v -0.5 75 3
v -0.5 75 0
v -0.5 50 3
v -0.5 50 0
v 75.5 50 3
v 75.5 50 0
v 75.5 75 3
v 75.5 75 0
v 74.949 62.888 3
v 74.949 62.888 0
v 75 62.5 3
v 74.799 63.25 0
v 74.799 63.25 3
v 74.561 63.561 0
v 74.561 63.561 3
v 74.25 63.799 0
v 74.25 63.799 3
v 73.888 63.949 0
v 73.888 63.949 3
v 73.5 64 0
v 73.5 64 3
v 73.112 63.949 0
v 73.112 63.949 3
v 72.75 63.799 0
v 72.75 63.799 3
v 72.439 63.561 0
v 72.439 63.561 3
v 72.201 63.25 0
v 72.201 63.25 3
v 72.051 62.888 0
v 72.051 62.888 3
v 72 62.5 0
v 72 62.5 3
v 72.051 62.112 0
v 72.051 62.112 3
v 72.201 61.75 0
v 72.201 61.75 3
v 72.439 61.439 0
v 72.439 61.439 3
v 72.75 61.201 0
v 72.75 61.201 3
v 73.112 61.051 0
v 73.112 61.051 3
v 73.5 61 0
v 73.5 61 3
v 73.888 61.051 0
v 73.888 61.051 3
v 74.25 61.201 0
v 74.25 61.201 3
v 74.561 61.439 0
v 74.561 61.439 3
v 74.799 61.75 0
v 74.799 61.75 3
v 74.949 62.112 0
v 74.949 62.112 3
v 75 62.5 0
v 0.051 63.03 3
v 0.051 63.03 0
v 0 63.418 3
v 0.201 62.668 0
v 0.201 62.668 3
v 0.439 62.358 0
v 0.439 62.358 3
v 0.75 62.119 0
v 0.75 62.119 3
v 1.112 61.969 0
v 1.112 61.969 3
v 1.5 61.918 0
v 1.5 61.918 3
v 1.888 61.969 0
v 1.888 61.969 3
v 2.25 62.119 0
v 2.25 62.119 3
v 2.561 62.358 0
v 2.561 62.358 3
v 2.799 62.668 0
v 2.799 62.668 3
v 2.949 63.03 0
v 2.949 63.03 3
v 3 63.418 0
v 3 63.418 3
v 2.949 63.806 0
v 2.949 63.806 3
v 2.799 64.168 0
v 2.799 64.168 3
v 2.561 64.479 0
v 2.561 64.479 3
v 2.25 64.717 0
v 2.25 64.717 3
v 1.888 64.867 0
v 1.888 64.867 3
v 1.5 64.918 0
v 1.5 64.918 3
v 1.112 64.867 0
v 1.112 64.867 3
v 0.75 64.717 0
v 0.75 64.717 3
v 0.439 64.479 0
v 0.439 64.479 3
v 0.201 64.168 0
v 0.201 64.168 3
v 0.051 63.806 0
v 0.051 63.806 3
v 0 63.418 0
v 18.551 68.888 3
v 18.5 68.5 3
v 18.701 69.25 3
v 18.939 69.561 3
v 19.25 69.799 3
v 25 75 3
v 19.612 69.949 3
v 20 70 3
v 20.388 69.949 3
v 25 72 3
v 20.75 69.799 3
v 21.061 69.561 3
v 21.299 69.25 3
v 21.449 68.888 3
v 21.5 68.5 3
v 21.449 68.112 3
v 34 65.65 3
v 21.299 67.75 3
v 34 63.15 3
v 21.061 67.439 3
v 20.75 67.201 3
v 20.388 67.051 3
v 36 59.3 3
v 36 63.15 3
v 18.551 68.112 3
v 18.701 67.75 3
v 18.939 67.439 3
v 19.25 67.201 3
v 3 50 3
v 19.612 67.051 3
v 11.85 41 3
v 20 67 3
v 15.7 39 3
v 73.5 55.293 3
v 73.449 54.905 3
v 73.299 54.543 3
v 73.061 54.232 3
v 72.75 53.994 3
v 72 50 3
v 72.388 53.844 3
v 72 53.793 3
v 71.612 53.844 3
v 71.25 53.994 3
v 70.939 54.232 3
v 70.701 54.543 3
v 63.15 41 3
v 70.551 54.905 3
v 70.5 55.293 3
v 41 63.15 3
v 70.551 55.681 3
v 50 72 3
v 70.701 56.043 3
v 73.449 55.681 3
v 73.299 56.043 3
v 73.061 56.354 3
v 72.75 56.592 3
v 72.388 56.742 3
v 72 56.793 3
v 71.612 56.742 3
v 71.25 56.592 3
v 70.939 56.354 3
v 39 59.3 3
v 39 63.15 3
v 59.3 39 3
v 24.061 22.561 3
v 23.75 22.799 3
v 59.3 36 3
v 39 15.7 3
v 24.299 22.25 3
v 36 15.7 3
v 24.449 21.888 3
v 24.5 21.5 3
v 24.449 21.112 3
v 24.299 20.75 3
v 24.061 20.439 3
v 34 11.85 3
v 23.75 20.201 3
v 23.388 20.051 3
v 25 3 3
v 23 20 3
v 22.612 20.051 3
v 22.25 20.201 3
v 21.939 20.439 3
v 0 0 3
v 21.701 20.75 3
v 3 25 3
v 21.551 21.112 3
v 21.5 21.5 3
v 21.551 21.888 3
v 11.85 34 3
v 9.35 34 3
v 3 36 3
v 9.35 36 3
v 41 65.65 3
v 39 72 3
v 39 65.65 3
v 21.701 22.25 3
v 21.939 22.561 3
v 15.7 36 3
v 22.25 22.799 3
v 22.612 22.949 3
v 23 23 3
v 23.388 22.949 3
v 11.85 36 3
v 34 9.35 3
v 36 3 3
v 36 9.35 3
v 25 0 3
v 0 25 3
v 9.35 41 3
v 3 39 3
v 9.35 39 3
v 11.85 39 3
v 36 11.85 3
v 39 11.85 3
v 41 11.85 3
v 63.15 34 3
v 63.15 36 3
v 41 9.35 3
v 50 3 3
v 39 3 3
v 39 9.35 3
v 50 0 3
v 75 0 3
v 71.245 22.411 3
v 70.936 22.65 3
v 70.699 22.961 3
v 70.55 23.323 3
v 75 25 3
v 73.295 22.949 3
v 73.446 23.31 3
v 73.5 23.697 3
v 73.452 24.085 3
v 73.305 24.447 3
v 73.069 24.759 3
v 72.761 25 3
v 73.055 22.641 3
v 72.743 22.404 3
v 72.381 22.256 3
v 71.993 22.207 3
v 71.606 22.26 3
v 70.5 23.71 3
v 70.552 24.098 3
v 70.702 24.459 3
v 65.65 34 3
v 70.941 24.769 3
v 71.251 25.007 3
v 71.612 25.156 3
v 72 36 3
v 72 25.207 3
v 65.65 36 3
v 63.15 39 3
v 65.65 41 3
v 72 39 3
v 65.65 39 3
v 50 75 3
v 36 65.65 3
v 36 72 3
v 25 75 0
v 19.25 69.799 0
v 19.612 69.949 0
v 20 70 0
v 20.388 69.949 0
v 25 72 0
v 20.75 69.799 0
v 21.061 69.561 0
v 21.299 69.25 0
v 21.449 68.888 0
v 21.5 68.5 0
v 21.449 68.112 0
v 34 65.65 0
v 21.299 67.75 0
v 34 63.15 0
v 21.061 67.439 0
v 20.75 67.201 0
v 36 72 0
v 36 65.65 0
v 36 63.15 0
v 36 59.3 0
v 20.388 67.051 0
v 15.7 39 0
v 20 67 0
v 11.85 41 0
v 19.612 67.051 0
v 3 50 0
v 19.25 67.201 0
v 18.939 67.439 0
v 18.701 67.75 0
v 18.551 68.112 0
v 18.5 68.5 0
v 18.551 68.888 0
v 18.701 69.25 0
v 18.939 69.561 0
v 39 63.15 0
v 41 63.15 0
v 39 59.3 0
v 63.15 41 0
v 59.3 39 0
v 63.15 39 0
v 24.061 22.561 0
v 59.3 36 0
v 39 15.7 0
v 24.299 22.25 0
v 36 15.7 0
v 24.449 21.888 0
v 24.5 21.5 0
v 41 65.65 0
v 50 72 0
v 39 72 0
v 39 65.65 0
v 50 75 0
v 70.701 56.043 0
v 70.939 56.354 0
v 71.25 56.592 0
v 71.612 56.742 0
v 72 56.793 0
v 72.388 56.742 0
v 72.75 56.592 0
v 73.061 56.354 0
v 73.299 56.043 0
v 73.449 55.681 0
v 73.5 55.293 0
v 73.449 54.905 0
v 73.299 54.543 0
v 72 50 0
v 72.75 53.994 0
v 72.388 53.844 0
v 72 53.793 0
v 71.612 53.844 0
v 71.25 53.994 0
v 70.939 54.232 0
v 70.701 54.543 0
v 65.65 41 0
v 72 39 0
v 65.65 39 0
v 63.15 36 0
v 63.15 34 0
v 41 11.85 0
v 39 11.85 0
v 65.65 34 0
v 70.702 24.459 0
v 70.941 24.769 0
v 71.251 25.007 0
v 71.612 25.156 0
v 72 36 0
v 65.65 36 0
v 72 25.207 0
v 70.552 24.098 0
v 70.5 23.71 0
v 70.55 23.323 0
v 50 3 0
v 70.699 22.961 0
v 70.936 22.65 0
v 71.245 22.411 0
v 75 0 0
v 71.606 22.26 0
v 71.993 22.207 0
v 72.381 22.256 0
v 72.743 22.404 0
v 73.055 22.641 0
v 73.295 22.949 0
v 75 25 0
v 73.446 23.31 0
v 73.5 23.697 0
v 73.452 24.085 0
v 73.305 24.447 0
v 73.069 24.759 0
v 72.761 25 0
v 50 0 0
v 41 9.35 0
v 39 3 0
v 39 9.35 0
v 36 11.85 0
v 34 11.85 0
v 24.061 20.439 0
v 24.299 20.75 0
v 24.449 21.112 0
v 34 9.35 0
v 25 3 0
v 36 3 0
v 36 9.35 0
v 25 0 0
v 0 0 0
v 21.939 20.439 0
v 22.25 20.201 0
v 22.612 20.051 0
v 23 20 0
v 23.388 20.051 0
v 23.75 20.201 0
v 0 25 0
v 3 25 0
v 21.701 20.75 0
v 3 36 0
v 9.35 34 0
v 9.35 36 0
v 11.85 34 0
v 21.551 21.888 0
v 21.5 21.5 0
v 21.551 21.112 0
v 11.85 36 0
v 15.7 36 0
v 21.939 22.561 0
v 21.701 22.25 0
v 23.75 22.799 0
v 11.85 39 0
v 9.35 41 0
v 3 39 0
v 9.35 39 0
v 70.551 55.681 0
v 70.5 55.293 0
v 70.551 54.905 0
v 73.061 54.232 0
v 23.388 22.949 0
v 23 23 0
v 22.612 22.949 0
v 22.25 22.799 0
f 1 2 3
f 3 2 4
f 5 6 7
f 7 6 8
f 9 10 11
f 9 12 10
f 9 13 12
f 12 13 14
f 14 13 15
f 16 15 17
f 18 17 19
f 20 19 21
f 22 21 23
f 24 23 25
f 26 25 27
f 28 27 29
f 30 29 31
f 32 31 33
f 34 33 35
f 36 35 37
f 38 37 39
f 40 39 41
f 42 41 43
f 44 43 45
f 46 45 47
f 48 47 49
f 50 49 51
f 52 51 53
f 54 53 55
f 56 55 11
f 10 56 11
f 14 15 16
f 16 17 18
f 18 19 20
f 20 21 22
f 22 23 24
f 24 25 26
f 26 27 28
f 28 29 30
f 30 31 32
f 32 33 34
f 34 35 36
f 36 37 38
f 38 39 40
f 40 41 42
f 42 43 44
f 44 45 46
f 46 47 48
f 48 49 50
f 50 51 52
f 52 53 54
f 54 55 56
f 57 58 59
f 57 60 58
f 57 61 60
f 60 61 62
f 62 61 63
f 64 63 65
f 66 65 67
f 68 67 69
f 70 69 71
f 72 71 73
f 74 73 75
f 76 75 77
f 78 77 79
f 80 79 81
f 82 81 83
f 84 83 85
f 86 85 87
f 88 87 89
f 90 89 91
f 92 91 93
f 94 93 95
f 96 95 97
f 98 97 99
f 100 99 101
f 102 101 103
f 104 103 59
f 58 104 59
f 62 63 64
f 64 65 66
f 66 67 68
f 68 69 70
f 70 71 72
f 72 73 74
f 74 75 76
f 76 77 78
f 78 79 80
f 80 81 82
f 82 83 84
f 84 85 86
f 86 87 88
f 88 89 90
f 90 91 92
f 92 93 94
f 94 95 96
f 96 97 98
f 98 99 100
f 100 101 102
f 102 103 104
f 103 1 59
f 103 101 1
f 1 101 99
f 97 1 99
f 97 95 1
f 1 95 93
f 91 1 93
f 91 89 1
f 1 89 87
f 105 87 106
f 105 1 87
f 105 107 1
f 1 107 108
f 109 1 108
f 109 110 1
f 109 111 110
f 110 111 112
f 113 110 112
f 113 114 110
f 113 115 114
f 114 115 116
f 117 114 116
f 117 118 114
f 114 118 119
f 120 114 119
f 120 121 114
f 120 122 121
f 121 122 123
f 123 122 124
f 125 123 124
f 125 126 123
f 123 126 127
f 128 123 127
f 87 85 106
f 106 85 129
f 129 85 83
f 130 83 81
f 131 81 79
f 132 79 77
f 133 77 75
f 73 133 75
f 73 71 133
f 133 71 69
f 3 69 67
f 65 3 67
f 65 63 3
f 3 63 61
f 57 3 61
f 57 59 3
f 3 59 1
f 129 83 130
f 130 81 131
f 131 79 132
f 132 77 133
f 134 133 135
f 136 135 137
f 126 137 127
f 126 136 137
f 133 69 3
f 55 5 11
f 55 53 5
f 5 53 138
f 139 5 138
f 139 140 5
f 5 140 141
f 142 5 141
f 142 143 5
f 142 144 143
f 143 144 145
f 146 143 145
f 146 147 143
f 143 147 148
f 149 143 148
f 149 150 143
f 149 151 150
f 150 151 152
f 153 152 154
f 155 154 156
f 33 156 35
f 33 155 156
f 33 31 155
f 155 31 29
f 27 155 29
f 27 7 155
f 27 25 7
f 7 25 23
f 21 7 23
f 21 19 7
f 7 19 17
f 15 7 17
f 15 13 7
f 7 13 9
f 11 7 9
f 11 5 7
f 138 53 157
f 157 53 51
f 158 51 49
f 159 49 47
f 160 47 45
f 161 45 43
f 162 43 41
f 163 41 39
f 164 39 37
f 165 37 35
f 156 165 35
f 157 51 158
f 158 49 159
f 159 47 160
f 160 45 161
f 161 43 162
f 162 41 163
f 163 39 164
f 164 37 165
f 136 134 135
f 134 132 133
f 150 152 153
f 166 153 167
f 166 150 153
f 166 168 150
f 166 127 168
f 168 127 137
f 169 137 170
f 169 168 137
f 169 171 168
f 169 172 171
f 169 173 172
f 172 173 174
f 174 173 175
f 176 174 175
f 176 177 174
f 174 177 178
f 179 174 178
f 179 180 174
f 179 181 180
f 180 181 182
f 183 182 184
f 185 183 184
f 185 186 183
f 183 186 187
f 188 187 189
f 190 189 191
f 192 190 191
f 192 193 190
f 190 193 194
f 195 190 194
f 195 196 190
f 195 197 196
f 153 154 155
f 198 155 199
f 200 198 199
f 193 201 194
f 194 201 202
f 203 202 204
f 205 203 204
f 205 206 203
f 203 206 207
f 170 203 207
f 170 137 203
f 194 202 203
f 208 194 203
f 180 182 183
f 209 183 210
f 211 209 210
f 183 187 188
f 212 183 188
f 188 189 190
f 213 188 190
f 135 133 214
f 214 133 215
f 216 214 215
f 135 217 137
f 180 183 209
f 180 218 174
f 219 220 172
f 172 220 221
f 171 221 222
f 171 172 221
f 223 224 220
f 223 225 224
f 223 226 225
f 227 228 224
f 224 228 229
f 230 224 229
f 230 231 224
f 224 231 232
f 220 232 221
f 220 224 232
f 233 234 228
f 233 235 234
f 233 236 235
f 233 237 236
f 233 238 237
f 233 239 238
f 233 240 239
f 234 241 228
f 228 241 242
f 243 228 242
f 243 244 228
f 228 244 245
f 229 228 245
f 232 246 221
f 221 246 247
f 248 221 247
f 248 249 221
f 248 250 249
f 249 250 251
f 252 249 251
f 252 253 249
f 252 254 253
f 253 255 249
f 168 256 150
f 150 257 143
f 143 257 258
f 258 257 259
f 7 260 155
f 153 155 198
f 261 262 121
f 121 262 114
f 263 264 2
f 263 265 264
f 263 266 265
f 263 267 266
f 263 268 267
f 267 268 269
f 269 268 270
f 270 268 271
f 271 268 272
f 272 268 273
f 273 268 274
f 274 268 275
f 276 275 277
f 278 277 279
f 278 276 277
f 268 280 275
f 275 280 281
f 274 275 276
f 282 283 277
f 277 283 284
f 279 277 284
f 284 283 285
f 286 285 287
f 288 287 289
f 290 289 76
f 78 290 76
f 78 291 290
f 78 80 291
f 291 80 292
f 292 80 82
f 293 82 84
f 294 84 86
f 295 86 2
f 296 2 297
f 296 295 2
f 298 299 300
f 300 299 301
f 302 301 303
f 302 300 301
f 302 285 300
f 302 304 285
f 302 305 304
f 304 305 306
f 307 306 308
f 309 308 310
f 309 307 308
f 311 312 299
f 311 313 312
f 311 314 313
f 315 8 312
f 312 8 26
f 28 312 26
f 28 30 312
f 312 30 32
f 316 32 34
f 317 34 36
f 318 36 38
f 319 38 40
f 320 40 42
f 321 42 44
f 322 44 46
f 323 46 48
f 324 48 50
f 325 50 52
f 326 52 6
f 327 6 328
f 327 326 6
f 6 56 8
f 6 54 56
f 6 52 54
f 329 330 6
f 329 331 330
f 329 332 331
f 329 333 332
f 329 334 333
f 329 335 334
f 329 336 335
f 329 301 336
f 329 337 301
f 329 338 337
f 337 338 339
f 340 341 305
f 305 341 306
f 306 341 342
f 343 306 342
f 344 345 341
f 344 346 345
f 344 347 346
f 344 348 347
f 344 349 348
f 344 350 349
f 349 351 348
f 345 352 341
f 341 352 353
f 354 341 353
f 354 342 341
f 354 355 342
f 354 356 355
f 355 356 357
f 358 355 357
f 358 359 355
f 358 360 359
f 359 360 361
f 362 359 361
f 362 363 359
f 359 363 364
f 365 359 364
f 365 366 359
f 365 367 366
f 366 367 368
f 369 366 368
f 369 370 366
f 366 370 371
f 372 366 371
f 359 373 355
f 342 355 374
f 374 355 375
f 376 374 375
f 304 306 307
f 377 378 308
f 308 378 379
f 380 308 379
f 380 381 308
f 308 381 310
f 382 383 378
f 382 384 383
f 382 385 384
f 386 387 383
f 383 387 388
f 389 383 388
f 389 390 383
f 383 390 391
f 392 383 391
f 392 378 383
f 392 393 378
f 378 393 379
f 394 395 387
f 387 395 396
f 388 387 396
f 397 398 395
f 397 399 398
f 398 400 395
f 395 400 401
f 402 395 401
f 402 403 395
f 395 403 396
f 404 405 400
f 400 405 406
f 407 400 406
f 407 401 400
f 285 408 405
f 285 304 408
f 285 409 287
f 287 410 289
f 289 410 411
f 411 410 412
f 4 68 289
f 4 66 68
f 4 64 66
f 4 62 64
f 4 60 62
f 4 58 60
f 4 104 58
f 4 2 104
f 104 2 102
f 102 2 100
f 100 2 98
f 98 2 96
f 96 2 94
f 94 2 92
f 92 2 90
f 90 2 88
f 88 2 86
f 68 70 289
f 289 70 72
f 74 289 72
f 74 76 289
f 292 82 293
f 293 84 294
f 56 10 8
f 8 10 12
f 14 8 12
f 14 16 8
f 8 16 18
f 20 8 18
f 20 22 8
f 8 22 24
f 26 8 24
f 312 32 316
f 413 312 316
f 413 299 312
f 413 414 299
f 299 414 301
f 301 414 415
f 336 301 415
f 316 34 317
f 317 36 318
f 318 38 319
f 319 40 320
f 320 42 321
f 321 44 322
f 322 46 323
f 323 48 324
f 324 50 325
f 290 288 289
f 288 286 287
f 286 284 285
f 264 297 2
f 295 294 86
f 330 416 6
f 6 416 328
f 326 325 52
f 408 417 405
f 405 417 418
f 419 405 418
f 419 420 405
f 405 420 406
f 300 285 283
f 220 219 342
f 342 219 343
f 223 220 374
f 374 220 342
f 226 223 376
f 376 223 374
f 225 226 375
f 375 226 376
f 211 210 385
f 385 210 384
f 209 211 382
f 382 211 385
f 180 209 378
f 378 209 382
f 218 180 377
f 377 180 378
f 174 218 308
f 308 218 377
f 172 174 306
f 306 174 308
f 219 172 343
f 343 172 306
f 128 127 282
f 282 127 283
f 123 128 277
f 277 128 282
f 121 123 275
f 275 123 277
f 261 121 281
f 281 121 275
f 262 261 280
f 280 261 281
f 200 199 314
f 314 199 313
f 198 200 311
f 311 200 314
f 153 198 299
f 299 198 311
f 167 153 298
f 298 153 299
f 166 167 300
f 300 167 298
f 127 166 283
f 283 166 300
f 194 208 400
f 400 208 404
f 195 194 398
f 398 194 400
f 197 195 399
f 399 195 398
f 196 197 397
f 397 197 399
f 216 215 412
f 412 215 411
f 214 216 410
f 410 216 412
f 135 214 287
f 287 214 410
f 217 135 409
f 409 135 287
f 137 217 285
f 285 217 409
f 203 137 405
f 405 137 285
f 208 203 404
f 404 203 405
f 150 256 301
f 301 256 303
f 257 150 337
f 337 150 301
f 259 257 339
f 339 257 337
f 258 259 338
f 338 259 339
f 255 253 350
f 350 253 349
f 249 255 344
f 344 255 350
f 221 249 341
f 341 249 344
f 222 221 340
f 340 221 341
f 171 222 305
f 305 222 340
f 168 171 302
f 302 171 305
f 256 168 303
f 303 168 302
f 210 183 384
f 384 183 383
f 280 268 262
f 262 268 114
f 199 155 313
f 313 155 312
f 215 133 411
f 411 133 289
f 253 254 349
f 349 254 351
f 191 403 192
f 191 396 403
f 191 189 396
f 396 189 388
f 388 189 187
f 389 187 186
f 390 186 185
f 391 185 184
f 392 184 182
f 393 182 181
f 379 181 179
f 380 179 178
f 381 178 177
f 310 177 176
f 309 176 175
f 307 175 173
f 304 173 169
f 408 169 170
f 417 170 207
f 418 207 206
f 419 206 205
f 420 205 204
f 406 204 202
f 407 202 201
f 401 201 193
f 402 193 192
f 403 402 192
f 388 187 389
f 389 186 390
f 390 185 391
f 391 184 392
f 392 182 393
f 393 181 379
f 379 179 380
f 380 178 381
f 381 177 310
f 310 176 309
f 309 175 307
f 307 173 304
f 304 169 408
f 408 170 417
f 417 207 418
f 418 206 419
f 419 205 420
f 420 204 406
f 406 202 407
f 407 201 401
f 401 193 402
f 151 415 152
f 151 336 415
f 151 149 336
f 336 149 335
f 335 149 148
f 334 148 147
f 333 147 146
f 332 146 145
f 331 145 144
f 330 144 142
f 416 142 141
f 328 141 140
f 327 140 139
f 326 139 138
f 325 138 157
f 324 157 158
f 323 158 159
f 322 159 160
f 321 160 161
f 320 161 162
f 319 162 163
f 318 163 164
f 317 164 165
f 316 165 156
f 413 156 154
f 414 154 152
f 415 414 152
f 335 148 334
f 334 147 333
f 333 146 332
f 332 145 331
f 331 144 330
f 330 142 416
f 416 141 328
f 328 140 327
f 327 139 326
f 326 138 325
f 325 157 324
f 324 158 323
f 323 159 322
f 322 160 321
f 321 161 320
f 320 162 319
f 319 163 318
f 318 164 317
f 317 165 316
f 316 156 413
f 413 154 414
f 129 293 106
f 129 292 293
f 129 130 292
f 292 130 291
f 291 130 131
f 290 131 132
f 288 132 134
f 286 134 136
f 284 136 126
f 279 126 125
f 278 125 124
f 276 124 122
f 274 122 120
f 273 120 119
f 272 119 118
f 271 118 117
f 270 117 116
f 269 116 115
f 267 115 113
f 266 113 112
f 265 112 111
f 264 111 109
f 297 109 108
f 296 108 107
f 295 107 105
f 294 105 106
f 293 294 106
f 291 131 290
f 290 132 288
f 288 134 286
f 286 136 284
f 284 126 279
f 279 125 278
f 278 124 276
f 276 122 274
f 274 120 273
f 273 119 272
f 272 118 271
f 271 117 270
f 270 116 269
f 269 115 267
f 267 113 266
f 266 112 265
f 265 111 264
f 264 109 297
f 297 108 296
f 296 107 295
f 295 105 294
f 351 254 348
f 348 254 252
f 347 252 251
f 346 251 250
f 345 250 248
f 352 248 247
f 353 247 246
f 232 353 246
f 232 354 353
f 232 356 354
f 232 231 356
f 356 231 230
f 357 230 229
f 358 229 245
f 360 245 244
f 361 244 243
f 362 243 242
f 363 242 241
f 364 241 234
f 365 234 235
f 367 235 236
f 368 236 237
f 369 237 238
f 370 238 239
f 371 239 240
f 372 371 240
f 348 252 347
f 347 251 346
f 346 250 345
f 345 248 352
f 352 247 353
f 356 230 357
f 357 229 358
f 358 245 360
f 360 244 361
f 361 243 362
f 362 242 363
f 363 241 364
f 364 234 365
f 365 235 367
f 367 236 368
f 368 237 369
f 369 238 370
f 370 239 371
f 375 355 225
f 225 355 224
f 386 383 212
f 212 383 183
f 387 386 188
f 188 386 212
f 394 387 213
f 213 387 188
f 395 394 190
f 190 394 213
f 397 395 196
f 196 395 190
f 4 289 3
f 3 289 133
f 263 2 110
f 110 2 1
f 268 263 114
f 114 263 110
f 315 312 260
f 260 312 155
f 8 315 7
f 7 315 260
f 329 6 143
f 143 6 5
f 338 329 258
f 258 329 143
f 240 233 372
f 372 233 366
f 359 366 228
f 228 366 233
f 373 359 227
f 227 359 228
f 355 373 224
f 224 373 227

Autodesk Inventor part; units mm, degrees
ref_plane "YZ Plane" through (0, 0, 0) normal (1, 0, 0) x (0, 1, 0)
ref_plane "XZ Plane" through (0, 0, 0) normal (0, 1, 0) x (-1, 0, 0)
ref_plane "XY Plane" through (0, 0, 0) normal (0, 0, 1) x (1, 0, 0)
sketch "Sketch1" plane through (0, 0, 0) normal (0, 0, 1) x (1, 0, 0)
  line L0 (0, 0) -> (25, 0) projected
  line L1 (25, 0) -> (25, 3) projected
  line L2 (0, 3) -> (25, 3) projected
  line L3 (0, 0) -> (0, 3) projected
  line L4 (25, 0) -> (50, 0) projected
  line L5 (50, 0) -> (50, 3) projected
  line L6 (25, 3) -> (50, 3) projected
  line L7 (25, 0) -> (25, 3) projected
  line L8 (50, 0) -> (75, 0) projected
  line L9 (75, 0) -> (75, 3) projected
  line L10 (50, 3) -> (75, 3) projected
  line L11 (50, 0) -> (50, 3) projected
  line L12 (0, 0) -> (0, 75)
  line L13 (0, 75) -> (75, 75)
  line L14 (75, 75) -> (75, 0)
  line L15 (75, 0) -> (50, 0)
  line L16 (50, 3) -> (50, 0)
  line L17 (50, 3) -> (25, 3)
  line L18 (25, 3) -> (25, 0)
  line L19 (25, 0) -> (0, 0)
  line L20 (0, 0) -> (0, 25)
  line L21 (0, 25) -> (3, 25)
  line L22 (3, 25) -> (3, 50)
  line L23 (3, 50) -> (0, 50)
  line L24 (25, 75) -> (25, 72)
  line L25 (25, 72) -> (50, 72)
  line L26 (50, 75) -> (50, 72)
  line L27 (75, 50) -> (72, 50)
  line L28 (72, 50) -> (72, 25)
  line L29 (72, 25) -> (75, 25)
  dimension "d0" = 75
  dimension "d1" = 75
  dimension "d2" = 25
  dimension "d3" = 3
  dimension "d4" = 25
  dimension "d5" = 3
  dimension "d6" = 3
extrude "Extrusion1" add sketch "Sketch1" along normal blind 3 contours L3 L2 L1 L0 | L12 L21 L22 L23 L13 L24 L25 L26 L14 L27 L28 L29 L10 L6 L2 | L5 L10 L9 L8
sketch "Sketch2" plane through (0, 0, 0) normal (0, 0, -1) x (-1, 0, 0)
  circle A0 centre (-72, 55.2929) radius 1.5 projected
  circle A1 centre (-20, 68.5) radius 1.5 projected
  circle A2 centre (-23, 21.5) radius 1.5 projected
  circle A3 centre (-72, 23.7071) radius 1.5 projected
  point P0 (0, 0)
extrude "Extrusion2" cut sketch "Sketch2" against normal blind 25.4
sketch "Sketch3" plane through (0, 0, 0) normal (0, 0, -1) x (-1, 0, 0)
  line L0 (-50, 72) -> (-39, 72) projected
  line L1 (-25, 72) -> (-25, 75) projected
  line L2 (-25, 75) -> (0, 75) projected
  line L3 (0, 62.5) -> (0, 50) projected
  line L4 (0, 50) -> (-3, 50) projected
  line L5 (-3, 50) -> (-3, 39) projected
  line L6 (-3, 25) -> (0, 25) projected
  line L7 (0, 25) -> (0, 0) projected
  line L8 (0, 0) -> (-25, 0) projected
  line L9 (-25, 0) -> (-25, 3) projected
  line L10 (-25, 3) -> (-36, 3) projected
  line L11 (-50, 3) -> (-50, 0) projected
  line L12 (-50, 0) -> (-75, 0) projected
  line L13 (-75, 0) -> (-75, 25) projected
  line L14 (-75, 25) -> (-72, 25) projected
  line L15 (-72, 25) -> (-72, 36) projected
  line L16 (-72, 50) -> (-75, 50) projected
  line L17 (-75, 62.5) -> (-75, 75) projected
  line L18 (-75, 75) -> (-50, 75) projected
  line L19 (-50, 75) -> (-50, 72) projected
  circle A0 centre (-19, 19.65) radius 1.5 projected
  circle A1 centre (-19, 56.95) radius 1.5 projected
  circle A2 centre (-56.3, 56.95) radius 1.5 projected
  circle A3 centre (-56.3, 19.65) radius 1.5 projected
  line L20 (-39, 72) -> (-36, 72)
  line L21 (-3, 39) -> (-3, 36)
  line L22 (-3, 50) -> (-3, 25) projected
  line L23 (-39, 3) -> (-36, 3)
  line L24 (-25, 3) -> (-50, 3) projected
  line L25 (-72, 36) -> (-72, 39)
  line L26 (-72, 25.2071) -> (-72, 50) projected
  line L27 (-72, 39) -> (-72, 50) projected
  line L28 (-36, 72) -> (-25, 72) projected
  line L29 (-3, 36) -> (-3, 25) projected
  line L30 (-39, 3) -> (-50, 3) projected
  line L31 (-72, 36) -> (-65.65, 36) projected
  line L32 (-65.65, 36) -> (-65.65, 34) projected
  line L33 (-65.65, 34) -> (-63.15, 34) projected
  line L34 (-63.15, 34) -> (-63.15, 36) projected
  line L35 (-63.15, 36) -> (-59.3, 36) projected
  line L36 (-59.3, 36) -> (-59.3, 39) projected
  line L37 (-59.3, 39) -> (-63.15, 39) projected
  line L38 (-63.15, 39) -> (-63.15, 41) projected
  line L39 (-63.15, 41) -> (-65.65, 41) projected
  line L40 (-65.65, 41) -> (-65.65, 39) projected
  line L41 (-65.65, 39) -> (-72, 39) projected
  line L42 (-39, 72) -> (-39, 65.65) projected
  line L43 (-39, 65.65) -> (-41, 65.65) projected
  line L44 (-41, 65.65) -> (-41, 63.15) projected
  line L45 (-41, 63.15) -> (-39, 63.15) projected
  line L46 (-39, 63.15) -> (-39, 59.3) projected
  line L47 (-39, 59.3) -> (-36, 59.3) projected
  line L48 (-36, 59.3) -> (-36, 63.15) projected
  line L49 (-36, 63.15) -> (-34, 63.15) projected
  line L50 (-34, 63.15) -> (-34, 65.65) projected
  line L51 (-34, 65.65) -> (-36, 65.65) projected
  line L52 (-36, 65.65) -> (-36, 72) projected
  line L53 (-3, 39) -> (-9.35, 39) projected
  line L54 (-9.35, 39) -> (-9.35, 41) projected
  line L55 (-9.35, 41) -> (-11.85, 41) projected
  line L56 (-11.85, 41) -> (-11.85, 39) projected
  line L57 (-11.85, 39) -> (-15.7, 39) projected
  line L58 (-15.7, 39) -> (-15.7, 36) projected
  line L59 (-15.7, 36) -> (-11.85, 36) projected
  line L60 (-11.85, 36) -> (-11.85, 34) projected
  line L61 (-11.85, 34) -> (-9.35, 34) projected
  line L62 (-9.35, 34) -> (-9.35, 36) projected
  line L63 (-9.35, 36) -> (-3, 36) projected
  line L64 (-36, 3) -> (-36, 9.35) projected
  line L65 (-36, 9.35) -> (-34, 9.35) projected
  line L66 (-34, 9.35) -> (-34, 11.85) projected
  line L67 (-34, 11.85) -> (-36, 11.85) projected
  line L68 (-36, 11.85) -> (-36, 15.7) projected
  line L69 (-36, 15.7) -> (-39, 15.7) projected
  line L70 (-39, 15.7) -> (-39, 11.85) projected
  line L71 (-39, 11.85) -> (-41, 11.85) projected
  line L72 (-41, 11.85) -> (-41, 9.35) projected
  line L73 (-41, 9.35) -> (-39, 9.35) projected
  line L74 (-39, 9.35) -> (-39, 3) projected
  line L75 (-75, 50) -> (-75, 62.5) projected
  circle A4 centre (-73.5, 62.5) radius 1.5 projected
  line L76 (0, 75) -> (0, 62.5) projected
  circle A5 centre (-1.5, 62.5) radius 1.5 projected
extrude "Extrusion3" cut sketch "Sketch3" against normal blind 25.4 contours L20 L52 L51 L50 L49 L48 L47 L46 L45 L44 L43 L42 | L41 L40 L39 L38 L37 L36 L35 L34 L33 L32 L31 L25 | L21 L63 L62 L61 L60 L59 L58 L57 L56 L55 L54 L53 | L74 L73 L72 L71 L70 L69 L68 L67 L66 L65 L64 L23
sketch "Sketch4" plane through (0, 0, 0) normal (0, 0, -1) x (-1, 0, 0)
  line L0 (-75, 61) -> (-75, 64) projected
  line L1 (0, 65) -> (0, 61.8364) projected
  line L2 (-75, 62.5) -> (-73.5, 62.5)
  line L3 (0, 63.4182) -> (-1.5, 63.4182)
  circle A0 centre (-73.5, 62.5) radius 1.5
  circle A1 centre (-1.5, 63.4182) radius 1.5
  point P0 (0, 0)
  dimension "d13" = 1.5
  dimension "d14" = 1.5
  dimension "d15" = 3
extrude "Extrusion4" cut sketch "Sketch4" against normal blind 25.4
sketch "Sketch5" plane through (75, 75, 3) normal (1, 0, 0) x (0, 0, -1)
  line L0 (3, -12.5) -> (0, -12.5) projected
  line L1 (3, -12.5) -> (3, 0) projected
  line L2 (3, 0) -> (0, 0) projected
  line L3 (0, -12.5) -> (0, 0) projected
  line L4 (0, -25) -> (0, -12.5) projected
  line L5 (3, -25) -> (0, -25) projected
  line L6 (3, -25) -> (3, -12.5) projected
  point P0 (3, -75)
extrude "Extrusion5" add sketch "Sketch5" along normal blind 0.5
sketch "Sketch6" plane through (0, 75, 0) normal (-1, 0, 0) x (0, 0, 1)
  line L0 (0, -11.5818) -> (3, -11.5818) projected
  line L1 (3, 0) -> (3, -11.5818) projected
  line L2 (0, 0) -> (3, 0) projected
  line L3 (0, 0) -> (0, -11.5818) projected
  line L4 (0, -11.5818) -> (0, -25) projected
  line L5 (0, -25) -> (3, -25) projected
  line L6 (3, -11.5818) -> (3, -25) projected
  point P0 (0, -75)
extrude "Extrusion6" add sketch "Sketch6" along normal blind 0.5
properties part number "pared lateral"
